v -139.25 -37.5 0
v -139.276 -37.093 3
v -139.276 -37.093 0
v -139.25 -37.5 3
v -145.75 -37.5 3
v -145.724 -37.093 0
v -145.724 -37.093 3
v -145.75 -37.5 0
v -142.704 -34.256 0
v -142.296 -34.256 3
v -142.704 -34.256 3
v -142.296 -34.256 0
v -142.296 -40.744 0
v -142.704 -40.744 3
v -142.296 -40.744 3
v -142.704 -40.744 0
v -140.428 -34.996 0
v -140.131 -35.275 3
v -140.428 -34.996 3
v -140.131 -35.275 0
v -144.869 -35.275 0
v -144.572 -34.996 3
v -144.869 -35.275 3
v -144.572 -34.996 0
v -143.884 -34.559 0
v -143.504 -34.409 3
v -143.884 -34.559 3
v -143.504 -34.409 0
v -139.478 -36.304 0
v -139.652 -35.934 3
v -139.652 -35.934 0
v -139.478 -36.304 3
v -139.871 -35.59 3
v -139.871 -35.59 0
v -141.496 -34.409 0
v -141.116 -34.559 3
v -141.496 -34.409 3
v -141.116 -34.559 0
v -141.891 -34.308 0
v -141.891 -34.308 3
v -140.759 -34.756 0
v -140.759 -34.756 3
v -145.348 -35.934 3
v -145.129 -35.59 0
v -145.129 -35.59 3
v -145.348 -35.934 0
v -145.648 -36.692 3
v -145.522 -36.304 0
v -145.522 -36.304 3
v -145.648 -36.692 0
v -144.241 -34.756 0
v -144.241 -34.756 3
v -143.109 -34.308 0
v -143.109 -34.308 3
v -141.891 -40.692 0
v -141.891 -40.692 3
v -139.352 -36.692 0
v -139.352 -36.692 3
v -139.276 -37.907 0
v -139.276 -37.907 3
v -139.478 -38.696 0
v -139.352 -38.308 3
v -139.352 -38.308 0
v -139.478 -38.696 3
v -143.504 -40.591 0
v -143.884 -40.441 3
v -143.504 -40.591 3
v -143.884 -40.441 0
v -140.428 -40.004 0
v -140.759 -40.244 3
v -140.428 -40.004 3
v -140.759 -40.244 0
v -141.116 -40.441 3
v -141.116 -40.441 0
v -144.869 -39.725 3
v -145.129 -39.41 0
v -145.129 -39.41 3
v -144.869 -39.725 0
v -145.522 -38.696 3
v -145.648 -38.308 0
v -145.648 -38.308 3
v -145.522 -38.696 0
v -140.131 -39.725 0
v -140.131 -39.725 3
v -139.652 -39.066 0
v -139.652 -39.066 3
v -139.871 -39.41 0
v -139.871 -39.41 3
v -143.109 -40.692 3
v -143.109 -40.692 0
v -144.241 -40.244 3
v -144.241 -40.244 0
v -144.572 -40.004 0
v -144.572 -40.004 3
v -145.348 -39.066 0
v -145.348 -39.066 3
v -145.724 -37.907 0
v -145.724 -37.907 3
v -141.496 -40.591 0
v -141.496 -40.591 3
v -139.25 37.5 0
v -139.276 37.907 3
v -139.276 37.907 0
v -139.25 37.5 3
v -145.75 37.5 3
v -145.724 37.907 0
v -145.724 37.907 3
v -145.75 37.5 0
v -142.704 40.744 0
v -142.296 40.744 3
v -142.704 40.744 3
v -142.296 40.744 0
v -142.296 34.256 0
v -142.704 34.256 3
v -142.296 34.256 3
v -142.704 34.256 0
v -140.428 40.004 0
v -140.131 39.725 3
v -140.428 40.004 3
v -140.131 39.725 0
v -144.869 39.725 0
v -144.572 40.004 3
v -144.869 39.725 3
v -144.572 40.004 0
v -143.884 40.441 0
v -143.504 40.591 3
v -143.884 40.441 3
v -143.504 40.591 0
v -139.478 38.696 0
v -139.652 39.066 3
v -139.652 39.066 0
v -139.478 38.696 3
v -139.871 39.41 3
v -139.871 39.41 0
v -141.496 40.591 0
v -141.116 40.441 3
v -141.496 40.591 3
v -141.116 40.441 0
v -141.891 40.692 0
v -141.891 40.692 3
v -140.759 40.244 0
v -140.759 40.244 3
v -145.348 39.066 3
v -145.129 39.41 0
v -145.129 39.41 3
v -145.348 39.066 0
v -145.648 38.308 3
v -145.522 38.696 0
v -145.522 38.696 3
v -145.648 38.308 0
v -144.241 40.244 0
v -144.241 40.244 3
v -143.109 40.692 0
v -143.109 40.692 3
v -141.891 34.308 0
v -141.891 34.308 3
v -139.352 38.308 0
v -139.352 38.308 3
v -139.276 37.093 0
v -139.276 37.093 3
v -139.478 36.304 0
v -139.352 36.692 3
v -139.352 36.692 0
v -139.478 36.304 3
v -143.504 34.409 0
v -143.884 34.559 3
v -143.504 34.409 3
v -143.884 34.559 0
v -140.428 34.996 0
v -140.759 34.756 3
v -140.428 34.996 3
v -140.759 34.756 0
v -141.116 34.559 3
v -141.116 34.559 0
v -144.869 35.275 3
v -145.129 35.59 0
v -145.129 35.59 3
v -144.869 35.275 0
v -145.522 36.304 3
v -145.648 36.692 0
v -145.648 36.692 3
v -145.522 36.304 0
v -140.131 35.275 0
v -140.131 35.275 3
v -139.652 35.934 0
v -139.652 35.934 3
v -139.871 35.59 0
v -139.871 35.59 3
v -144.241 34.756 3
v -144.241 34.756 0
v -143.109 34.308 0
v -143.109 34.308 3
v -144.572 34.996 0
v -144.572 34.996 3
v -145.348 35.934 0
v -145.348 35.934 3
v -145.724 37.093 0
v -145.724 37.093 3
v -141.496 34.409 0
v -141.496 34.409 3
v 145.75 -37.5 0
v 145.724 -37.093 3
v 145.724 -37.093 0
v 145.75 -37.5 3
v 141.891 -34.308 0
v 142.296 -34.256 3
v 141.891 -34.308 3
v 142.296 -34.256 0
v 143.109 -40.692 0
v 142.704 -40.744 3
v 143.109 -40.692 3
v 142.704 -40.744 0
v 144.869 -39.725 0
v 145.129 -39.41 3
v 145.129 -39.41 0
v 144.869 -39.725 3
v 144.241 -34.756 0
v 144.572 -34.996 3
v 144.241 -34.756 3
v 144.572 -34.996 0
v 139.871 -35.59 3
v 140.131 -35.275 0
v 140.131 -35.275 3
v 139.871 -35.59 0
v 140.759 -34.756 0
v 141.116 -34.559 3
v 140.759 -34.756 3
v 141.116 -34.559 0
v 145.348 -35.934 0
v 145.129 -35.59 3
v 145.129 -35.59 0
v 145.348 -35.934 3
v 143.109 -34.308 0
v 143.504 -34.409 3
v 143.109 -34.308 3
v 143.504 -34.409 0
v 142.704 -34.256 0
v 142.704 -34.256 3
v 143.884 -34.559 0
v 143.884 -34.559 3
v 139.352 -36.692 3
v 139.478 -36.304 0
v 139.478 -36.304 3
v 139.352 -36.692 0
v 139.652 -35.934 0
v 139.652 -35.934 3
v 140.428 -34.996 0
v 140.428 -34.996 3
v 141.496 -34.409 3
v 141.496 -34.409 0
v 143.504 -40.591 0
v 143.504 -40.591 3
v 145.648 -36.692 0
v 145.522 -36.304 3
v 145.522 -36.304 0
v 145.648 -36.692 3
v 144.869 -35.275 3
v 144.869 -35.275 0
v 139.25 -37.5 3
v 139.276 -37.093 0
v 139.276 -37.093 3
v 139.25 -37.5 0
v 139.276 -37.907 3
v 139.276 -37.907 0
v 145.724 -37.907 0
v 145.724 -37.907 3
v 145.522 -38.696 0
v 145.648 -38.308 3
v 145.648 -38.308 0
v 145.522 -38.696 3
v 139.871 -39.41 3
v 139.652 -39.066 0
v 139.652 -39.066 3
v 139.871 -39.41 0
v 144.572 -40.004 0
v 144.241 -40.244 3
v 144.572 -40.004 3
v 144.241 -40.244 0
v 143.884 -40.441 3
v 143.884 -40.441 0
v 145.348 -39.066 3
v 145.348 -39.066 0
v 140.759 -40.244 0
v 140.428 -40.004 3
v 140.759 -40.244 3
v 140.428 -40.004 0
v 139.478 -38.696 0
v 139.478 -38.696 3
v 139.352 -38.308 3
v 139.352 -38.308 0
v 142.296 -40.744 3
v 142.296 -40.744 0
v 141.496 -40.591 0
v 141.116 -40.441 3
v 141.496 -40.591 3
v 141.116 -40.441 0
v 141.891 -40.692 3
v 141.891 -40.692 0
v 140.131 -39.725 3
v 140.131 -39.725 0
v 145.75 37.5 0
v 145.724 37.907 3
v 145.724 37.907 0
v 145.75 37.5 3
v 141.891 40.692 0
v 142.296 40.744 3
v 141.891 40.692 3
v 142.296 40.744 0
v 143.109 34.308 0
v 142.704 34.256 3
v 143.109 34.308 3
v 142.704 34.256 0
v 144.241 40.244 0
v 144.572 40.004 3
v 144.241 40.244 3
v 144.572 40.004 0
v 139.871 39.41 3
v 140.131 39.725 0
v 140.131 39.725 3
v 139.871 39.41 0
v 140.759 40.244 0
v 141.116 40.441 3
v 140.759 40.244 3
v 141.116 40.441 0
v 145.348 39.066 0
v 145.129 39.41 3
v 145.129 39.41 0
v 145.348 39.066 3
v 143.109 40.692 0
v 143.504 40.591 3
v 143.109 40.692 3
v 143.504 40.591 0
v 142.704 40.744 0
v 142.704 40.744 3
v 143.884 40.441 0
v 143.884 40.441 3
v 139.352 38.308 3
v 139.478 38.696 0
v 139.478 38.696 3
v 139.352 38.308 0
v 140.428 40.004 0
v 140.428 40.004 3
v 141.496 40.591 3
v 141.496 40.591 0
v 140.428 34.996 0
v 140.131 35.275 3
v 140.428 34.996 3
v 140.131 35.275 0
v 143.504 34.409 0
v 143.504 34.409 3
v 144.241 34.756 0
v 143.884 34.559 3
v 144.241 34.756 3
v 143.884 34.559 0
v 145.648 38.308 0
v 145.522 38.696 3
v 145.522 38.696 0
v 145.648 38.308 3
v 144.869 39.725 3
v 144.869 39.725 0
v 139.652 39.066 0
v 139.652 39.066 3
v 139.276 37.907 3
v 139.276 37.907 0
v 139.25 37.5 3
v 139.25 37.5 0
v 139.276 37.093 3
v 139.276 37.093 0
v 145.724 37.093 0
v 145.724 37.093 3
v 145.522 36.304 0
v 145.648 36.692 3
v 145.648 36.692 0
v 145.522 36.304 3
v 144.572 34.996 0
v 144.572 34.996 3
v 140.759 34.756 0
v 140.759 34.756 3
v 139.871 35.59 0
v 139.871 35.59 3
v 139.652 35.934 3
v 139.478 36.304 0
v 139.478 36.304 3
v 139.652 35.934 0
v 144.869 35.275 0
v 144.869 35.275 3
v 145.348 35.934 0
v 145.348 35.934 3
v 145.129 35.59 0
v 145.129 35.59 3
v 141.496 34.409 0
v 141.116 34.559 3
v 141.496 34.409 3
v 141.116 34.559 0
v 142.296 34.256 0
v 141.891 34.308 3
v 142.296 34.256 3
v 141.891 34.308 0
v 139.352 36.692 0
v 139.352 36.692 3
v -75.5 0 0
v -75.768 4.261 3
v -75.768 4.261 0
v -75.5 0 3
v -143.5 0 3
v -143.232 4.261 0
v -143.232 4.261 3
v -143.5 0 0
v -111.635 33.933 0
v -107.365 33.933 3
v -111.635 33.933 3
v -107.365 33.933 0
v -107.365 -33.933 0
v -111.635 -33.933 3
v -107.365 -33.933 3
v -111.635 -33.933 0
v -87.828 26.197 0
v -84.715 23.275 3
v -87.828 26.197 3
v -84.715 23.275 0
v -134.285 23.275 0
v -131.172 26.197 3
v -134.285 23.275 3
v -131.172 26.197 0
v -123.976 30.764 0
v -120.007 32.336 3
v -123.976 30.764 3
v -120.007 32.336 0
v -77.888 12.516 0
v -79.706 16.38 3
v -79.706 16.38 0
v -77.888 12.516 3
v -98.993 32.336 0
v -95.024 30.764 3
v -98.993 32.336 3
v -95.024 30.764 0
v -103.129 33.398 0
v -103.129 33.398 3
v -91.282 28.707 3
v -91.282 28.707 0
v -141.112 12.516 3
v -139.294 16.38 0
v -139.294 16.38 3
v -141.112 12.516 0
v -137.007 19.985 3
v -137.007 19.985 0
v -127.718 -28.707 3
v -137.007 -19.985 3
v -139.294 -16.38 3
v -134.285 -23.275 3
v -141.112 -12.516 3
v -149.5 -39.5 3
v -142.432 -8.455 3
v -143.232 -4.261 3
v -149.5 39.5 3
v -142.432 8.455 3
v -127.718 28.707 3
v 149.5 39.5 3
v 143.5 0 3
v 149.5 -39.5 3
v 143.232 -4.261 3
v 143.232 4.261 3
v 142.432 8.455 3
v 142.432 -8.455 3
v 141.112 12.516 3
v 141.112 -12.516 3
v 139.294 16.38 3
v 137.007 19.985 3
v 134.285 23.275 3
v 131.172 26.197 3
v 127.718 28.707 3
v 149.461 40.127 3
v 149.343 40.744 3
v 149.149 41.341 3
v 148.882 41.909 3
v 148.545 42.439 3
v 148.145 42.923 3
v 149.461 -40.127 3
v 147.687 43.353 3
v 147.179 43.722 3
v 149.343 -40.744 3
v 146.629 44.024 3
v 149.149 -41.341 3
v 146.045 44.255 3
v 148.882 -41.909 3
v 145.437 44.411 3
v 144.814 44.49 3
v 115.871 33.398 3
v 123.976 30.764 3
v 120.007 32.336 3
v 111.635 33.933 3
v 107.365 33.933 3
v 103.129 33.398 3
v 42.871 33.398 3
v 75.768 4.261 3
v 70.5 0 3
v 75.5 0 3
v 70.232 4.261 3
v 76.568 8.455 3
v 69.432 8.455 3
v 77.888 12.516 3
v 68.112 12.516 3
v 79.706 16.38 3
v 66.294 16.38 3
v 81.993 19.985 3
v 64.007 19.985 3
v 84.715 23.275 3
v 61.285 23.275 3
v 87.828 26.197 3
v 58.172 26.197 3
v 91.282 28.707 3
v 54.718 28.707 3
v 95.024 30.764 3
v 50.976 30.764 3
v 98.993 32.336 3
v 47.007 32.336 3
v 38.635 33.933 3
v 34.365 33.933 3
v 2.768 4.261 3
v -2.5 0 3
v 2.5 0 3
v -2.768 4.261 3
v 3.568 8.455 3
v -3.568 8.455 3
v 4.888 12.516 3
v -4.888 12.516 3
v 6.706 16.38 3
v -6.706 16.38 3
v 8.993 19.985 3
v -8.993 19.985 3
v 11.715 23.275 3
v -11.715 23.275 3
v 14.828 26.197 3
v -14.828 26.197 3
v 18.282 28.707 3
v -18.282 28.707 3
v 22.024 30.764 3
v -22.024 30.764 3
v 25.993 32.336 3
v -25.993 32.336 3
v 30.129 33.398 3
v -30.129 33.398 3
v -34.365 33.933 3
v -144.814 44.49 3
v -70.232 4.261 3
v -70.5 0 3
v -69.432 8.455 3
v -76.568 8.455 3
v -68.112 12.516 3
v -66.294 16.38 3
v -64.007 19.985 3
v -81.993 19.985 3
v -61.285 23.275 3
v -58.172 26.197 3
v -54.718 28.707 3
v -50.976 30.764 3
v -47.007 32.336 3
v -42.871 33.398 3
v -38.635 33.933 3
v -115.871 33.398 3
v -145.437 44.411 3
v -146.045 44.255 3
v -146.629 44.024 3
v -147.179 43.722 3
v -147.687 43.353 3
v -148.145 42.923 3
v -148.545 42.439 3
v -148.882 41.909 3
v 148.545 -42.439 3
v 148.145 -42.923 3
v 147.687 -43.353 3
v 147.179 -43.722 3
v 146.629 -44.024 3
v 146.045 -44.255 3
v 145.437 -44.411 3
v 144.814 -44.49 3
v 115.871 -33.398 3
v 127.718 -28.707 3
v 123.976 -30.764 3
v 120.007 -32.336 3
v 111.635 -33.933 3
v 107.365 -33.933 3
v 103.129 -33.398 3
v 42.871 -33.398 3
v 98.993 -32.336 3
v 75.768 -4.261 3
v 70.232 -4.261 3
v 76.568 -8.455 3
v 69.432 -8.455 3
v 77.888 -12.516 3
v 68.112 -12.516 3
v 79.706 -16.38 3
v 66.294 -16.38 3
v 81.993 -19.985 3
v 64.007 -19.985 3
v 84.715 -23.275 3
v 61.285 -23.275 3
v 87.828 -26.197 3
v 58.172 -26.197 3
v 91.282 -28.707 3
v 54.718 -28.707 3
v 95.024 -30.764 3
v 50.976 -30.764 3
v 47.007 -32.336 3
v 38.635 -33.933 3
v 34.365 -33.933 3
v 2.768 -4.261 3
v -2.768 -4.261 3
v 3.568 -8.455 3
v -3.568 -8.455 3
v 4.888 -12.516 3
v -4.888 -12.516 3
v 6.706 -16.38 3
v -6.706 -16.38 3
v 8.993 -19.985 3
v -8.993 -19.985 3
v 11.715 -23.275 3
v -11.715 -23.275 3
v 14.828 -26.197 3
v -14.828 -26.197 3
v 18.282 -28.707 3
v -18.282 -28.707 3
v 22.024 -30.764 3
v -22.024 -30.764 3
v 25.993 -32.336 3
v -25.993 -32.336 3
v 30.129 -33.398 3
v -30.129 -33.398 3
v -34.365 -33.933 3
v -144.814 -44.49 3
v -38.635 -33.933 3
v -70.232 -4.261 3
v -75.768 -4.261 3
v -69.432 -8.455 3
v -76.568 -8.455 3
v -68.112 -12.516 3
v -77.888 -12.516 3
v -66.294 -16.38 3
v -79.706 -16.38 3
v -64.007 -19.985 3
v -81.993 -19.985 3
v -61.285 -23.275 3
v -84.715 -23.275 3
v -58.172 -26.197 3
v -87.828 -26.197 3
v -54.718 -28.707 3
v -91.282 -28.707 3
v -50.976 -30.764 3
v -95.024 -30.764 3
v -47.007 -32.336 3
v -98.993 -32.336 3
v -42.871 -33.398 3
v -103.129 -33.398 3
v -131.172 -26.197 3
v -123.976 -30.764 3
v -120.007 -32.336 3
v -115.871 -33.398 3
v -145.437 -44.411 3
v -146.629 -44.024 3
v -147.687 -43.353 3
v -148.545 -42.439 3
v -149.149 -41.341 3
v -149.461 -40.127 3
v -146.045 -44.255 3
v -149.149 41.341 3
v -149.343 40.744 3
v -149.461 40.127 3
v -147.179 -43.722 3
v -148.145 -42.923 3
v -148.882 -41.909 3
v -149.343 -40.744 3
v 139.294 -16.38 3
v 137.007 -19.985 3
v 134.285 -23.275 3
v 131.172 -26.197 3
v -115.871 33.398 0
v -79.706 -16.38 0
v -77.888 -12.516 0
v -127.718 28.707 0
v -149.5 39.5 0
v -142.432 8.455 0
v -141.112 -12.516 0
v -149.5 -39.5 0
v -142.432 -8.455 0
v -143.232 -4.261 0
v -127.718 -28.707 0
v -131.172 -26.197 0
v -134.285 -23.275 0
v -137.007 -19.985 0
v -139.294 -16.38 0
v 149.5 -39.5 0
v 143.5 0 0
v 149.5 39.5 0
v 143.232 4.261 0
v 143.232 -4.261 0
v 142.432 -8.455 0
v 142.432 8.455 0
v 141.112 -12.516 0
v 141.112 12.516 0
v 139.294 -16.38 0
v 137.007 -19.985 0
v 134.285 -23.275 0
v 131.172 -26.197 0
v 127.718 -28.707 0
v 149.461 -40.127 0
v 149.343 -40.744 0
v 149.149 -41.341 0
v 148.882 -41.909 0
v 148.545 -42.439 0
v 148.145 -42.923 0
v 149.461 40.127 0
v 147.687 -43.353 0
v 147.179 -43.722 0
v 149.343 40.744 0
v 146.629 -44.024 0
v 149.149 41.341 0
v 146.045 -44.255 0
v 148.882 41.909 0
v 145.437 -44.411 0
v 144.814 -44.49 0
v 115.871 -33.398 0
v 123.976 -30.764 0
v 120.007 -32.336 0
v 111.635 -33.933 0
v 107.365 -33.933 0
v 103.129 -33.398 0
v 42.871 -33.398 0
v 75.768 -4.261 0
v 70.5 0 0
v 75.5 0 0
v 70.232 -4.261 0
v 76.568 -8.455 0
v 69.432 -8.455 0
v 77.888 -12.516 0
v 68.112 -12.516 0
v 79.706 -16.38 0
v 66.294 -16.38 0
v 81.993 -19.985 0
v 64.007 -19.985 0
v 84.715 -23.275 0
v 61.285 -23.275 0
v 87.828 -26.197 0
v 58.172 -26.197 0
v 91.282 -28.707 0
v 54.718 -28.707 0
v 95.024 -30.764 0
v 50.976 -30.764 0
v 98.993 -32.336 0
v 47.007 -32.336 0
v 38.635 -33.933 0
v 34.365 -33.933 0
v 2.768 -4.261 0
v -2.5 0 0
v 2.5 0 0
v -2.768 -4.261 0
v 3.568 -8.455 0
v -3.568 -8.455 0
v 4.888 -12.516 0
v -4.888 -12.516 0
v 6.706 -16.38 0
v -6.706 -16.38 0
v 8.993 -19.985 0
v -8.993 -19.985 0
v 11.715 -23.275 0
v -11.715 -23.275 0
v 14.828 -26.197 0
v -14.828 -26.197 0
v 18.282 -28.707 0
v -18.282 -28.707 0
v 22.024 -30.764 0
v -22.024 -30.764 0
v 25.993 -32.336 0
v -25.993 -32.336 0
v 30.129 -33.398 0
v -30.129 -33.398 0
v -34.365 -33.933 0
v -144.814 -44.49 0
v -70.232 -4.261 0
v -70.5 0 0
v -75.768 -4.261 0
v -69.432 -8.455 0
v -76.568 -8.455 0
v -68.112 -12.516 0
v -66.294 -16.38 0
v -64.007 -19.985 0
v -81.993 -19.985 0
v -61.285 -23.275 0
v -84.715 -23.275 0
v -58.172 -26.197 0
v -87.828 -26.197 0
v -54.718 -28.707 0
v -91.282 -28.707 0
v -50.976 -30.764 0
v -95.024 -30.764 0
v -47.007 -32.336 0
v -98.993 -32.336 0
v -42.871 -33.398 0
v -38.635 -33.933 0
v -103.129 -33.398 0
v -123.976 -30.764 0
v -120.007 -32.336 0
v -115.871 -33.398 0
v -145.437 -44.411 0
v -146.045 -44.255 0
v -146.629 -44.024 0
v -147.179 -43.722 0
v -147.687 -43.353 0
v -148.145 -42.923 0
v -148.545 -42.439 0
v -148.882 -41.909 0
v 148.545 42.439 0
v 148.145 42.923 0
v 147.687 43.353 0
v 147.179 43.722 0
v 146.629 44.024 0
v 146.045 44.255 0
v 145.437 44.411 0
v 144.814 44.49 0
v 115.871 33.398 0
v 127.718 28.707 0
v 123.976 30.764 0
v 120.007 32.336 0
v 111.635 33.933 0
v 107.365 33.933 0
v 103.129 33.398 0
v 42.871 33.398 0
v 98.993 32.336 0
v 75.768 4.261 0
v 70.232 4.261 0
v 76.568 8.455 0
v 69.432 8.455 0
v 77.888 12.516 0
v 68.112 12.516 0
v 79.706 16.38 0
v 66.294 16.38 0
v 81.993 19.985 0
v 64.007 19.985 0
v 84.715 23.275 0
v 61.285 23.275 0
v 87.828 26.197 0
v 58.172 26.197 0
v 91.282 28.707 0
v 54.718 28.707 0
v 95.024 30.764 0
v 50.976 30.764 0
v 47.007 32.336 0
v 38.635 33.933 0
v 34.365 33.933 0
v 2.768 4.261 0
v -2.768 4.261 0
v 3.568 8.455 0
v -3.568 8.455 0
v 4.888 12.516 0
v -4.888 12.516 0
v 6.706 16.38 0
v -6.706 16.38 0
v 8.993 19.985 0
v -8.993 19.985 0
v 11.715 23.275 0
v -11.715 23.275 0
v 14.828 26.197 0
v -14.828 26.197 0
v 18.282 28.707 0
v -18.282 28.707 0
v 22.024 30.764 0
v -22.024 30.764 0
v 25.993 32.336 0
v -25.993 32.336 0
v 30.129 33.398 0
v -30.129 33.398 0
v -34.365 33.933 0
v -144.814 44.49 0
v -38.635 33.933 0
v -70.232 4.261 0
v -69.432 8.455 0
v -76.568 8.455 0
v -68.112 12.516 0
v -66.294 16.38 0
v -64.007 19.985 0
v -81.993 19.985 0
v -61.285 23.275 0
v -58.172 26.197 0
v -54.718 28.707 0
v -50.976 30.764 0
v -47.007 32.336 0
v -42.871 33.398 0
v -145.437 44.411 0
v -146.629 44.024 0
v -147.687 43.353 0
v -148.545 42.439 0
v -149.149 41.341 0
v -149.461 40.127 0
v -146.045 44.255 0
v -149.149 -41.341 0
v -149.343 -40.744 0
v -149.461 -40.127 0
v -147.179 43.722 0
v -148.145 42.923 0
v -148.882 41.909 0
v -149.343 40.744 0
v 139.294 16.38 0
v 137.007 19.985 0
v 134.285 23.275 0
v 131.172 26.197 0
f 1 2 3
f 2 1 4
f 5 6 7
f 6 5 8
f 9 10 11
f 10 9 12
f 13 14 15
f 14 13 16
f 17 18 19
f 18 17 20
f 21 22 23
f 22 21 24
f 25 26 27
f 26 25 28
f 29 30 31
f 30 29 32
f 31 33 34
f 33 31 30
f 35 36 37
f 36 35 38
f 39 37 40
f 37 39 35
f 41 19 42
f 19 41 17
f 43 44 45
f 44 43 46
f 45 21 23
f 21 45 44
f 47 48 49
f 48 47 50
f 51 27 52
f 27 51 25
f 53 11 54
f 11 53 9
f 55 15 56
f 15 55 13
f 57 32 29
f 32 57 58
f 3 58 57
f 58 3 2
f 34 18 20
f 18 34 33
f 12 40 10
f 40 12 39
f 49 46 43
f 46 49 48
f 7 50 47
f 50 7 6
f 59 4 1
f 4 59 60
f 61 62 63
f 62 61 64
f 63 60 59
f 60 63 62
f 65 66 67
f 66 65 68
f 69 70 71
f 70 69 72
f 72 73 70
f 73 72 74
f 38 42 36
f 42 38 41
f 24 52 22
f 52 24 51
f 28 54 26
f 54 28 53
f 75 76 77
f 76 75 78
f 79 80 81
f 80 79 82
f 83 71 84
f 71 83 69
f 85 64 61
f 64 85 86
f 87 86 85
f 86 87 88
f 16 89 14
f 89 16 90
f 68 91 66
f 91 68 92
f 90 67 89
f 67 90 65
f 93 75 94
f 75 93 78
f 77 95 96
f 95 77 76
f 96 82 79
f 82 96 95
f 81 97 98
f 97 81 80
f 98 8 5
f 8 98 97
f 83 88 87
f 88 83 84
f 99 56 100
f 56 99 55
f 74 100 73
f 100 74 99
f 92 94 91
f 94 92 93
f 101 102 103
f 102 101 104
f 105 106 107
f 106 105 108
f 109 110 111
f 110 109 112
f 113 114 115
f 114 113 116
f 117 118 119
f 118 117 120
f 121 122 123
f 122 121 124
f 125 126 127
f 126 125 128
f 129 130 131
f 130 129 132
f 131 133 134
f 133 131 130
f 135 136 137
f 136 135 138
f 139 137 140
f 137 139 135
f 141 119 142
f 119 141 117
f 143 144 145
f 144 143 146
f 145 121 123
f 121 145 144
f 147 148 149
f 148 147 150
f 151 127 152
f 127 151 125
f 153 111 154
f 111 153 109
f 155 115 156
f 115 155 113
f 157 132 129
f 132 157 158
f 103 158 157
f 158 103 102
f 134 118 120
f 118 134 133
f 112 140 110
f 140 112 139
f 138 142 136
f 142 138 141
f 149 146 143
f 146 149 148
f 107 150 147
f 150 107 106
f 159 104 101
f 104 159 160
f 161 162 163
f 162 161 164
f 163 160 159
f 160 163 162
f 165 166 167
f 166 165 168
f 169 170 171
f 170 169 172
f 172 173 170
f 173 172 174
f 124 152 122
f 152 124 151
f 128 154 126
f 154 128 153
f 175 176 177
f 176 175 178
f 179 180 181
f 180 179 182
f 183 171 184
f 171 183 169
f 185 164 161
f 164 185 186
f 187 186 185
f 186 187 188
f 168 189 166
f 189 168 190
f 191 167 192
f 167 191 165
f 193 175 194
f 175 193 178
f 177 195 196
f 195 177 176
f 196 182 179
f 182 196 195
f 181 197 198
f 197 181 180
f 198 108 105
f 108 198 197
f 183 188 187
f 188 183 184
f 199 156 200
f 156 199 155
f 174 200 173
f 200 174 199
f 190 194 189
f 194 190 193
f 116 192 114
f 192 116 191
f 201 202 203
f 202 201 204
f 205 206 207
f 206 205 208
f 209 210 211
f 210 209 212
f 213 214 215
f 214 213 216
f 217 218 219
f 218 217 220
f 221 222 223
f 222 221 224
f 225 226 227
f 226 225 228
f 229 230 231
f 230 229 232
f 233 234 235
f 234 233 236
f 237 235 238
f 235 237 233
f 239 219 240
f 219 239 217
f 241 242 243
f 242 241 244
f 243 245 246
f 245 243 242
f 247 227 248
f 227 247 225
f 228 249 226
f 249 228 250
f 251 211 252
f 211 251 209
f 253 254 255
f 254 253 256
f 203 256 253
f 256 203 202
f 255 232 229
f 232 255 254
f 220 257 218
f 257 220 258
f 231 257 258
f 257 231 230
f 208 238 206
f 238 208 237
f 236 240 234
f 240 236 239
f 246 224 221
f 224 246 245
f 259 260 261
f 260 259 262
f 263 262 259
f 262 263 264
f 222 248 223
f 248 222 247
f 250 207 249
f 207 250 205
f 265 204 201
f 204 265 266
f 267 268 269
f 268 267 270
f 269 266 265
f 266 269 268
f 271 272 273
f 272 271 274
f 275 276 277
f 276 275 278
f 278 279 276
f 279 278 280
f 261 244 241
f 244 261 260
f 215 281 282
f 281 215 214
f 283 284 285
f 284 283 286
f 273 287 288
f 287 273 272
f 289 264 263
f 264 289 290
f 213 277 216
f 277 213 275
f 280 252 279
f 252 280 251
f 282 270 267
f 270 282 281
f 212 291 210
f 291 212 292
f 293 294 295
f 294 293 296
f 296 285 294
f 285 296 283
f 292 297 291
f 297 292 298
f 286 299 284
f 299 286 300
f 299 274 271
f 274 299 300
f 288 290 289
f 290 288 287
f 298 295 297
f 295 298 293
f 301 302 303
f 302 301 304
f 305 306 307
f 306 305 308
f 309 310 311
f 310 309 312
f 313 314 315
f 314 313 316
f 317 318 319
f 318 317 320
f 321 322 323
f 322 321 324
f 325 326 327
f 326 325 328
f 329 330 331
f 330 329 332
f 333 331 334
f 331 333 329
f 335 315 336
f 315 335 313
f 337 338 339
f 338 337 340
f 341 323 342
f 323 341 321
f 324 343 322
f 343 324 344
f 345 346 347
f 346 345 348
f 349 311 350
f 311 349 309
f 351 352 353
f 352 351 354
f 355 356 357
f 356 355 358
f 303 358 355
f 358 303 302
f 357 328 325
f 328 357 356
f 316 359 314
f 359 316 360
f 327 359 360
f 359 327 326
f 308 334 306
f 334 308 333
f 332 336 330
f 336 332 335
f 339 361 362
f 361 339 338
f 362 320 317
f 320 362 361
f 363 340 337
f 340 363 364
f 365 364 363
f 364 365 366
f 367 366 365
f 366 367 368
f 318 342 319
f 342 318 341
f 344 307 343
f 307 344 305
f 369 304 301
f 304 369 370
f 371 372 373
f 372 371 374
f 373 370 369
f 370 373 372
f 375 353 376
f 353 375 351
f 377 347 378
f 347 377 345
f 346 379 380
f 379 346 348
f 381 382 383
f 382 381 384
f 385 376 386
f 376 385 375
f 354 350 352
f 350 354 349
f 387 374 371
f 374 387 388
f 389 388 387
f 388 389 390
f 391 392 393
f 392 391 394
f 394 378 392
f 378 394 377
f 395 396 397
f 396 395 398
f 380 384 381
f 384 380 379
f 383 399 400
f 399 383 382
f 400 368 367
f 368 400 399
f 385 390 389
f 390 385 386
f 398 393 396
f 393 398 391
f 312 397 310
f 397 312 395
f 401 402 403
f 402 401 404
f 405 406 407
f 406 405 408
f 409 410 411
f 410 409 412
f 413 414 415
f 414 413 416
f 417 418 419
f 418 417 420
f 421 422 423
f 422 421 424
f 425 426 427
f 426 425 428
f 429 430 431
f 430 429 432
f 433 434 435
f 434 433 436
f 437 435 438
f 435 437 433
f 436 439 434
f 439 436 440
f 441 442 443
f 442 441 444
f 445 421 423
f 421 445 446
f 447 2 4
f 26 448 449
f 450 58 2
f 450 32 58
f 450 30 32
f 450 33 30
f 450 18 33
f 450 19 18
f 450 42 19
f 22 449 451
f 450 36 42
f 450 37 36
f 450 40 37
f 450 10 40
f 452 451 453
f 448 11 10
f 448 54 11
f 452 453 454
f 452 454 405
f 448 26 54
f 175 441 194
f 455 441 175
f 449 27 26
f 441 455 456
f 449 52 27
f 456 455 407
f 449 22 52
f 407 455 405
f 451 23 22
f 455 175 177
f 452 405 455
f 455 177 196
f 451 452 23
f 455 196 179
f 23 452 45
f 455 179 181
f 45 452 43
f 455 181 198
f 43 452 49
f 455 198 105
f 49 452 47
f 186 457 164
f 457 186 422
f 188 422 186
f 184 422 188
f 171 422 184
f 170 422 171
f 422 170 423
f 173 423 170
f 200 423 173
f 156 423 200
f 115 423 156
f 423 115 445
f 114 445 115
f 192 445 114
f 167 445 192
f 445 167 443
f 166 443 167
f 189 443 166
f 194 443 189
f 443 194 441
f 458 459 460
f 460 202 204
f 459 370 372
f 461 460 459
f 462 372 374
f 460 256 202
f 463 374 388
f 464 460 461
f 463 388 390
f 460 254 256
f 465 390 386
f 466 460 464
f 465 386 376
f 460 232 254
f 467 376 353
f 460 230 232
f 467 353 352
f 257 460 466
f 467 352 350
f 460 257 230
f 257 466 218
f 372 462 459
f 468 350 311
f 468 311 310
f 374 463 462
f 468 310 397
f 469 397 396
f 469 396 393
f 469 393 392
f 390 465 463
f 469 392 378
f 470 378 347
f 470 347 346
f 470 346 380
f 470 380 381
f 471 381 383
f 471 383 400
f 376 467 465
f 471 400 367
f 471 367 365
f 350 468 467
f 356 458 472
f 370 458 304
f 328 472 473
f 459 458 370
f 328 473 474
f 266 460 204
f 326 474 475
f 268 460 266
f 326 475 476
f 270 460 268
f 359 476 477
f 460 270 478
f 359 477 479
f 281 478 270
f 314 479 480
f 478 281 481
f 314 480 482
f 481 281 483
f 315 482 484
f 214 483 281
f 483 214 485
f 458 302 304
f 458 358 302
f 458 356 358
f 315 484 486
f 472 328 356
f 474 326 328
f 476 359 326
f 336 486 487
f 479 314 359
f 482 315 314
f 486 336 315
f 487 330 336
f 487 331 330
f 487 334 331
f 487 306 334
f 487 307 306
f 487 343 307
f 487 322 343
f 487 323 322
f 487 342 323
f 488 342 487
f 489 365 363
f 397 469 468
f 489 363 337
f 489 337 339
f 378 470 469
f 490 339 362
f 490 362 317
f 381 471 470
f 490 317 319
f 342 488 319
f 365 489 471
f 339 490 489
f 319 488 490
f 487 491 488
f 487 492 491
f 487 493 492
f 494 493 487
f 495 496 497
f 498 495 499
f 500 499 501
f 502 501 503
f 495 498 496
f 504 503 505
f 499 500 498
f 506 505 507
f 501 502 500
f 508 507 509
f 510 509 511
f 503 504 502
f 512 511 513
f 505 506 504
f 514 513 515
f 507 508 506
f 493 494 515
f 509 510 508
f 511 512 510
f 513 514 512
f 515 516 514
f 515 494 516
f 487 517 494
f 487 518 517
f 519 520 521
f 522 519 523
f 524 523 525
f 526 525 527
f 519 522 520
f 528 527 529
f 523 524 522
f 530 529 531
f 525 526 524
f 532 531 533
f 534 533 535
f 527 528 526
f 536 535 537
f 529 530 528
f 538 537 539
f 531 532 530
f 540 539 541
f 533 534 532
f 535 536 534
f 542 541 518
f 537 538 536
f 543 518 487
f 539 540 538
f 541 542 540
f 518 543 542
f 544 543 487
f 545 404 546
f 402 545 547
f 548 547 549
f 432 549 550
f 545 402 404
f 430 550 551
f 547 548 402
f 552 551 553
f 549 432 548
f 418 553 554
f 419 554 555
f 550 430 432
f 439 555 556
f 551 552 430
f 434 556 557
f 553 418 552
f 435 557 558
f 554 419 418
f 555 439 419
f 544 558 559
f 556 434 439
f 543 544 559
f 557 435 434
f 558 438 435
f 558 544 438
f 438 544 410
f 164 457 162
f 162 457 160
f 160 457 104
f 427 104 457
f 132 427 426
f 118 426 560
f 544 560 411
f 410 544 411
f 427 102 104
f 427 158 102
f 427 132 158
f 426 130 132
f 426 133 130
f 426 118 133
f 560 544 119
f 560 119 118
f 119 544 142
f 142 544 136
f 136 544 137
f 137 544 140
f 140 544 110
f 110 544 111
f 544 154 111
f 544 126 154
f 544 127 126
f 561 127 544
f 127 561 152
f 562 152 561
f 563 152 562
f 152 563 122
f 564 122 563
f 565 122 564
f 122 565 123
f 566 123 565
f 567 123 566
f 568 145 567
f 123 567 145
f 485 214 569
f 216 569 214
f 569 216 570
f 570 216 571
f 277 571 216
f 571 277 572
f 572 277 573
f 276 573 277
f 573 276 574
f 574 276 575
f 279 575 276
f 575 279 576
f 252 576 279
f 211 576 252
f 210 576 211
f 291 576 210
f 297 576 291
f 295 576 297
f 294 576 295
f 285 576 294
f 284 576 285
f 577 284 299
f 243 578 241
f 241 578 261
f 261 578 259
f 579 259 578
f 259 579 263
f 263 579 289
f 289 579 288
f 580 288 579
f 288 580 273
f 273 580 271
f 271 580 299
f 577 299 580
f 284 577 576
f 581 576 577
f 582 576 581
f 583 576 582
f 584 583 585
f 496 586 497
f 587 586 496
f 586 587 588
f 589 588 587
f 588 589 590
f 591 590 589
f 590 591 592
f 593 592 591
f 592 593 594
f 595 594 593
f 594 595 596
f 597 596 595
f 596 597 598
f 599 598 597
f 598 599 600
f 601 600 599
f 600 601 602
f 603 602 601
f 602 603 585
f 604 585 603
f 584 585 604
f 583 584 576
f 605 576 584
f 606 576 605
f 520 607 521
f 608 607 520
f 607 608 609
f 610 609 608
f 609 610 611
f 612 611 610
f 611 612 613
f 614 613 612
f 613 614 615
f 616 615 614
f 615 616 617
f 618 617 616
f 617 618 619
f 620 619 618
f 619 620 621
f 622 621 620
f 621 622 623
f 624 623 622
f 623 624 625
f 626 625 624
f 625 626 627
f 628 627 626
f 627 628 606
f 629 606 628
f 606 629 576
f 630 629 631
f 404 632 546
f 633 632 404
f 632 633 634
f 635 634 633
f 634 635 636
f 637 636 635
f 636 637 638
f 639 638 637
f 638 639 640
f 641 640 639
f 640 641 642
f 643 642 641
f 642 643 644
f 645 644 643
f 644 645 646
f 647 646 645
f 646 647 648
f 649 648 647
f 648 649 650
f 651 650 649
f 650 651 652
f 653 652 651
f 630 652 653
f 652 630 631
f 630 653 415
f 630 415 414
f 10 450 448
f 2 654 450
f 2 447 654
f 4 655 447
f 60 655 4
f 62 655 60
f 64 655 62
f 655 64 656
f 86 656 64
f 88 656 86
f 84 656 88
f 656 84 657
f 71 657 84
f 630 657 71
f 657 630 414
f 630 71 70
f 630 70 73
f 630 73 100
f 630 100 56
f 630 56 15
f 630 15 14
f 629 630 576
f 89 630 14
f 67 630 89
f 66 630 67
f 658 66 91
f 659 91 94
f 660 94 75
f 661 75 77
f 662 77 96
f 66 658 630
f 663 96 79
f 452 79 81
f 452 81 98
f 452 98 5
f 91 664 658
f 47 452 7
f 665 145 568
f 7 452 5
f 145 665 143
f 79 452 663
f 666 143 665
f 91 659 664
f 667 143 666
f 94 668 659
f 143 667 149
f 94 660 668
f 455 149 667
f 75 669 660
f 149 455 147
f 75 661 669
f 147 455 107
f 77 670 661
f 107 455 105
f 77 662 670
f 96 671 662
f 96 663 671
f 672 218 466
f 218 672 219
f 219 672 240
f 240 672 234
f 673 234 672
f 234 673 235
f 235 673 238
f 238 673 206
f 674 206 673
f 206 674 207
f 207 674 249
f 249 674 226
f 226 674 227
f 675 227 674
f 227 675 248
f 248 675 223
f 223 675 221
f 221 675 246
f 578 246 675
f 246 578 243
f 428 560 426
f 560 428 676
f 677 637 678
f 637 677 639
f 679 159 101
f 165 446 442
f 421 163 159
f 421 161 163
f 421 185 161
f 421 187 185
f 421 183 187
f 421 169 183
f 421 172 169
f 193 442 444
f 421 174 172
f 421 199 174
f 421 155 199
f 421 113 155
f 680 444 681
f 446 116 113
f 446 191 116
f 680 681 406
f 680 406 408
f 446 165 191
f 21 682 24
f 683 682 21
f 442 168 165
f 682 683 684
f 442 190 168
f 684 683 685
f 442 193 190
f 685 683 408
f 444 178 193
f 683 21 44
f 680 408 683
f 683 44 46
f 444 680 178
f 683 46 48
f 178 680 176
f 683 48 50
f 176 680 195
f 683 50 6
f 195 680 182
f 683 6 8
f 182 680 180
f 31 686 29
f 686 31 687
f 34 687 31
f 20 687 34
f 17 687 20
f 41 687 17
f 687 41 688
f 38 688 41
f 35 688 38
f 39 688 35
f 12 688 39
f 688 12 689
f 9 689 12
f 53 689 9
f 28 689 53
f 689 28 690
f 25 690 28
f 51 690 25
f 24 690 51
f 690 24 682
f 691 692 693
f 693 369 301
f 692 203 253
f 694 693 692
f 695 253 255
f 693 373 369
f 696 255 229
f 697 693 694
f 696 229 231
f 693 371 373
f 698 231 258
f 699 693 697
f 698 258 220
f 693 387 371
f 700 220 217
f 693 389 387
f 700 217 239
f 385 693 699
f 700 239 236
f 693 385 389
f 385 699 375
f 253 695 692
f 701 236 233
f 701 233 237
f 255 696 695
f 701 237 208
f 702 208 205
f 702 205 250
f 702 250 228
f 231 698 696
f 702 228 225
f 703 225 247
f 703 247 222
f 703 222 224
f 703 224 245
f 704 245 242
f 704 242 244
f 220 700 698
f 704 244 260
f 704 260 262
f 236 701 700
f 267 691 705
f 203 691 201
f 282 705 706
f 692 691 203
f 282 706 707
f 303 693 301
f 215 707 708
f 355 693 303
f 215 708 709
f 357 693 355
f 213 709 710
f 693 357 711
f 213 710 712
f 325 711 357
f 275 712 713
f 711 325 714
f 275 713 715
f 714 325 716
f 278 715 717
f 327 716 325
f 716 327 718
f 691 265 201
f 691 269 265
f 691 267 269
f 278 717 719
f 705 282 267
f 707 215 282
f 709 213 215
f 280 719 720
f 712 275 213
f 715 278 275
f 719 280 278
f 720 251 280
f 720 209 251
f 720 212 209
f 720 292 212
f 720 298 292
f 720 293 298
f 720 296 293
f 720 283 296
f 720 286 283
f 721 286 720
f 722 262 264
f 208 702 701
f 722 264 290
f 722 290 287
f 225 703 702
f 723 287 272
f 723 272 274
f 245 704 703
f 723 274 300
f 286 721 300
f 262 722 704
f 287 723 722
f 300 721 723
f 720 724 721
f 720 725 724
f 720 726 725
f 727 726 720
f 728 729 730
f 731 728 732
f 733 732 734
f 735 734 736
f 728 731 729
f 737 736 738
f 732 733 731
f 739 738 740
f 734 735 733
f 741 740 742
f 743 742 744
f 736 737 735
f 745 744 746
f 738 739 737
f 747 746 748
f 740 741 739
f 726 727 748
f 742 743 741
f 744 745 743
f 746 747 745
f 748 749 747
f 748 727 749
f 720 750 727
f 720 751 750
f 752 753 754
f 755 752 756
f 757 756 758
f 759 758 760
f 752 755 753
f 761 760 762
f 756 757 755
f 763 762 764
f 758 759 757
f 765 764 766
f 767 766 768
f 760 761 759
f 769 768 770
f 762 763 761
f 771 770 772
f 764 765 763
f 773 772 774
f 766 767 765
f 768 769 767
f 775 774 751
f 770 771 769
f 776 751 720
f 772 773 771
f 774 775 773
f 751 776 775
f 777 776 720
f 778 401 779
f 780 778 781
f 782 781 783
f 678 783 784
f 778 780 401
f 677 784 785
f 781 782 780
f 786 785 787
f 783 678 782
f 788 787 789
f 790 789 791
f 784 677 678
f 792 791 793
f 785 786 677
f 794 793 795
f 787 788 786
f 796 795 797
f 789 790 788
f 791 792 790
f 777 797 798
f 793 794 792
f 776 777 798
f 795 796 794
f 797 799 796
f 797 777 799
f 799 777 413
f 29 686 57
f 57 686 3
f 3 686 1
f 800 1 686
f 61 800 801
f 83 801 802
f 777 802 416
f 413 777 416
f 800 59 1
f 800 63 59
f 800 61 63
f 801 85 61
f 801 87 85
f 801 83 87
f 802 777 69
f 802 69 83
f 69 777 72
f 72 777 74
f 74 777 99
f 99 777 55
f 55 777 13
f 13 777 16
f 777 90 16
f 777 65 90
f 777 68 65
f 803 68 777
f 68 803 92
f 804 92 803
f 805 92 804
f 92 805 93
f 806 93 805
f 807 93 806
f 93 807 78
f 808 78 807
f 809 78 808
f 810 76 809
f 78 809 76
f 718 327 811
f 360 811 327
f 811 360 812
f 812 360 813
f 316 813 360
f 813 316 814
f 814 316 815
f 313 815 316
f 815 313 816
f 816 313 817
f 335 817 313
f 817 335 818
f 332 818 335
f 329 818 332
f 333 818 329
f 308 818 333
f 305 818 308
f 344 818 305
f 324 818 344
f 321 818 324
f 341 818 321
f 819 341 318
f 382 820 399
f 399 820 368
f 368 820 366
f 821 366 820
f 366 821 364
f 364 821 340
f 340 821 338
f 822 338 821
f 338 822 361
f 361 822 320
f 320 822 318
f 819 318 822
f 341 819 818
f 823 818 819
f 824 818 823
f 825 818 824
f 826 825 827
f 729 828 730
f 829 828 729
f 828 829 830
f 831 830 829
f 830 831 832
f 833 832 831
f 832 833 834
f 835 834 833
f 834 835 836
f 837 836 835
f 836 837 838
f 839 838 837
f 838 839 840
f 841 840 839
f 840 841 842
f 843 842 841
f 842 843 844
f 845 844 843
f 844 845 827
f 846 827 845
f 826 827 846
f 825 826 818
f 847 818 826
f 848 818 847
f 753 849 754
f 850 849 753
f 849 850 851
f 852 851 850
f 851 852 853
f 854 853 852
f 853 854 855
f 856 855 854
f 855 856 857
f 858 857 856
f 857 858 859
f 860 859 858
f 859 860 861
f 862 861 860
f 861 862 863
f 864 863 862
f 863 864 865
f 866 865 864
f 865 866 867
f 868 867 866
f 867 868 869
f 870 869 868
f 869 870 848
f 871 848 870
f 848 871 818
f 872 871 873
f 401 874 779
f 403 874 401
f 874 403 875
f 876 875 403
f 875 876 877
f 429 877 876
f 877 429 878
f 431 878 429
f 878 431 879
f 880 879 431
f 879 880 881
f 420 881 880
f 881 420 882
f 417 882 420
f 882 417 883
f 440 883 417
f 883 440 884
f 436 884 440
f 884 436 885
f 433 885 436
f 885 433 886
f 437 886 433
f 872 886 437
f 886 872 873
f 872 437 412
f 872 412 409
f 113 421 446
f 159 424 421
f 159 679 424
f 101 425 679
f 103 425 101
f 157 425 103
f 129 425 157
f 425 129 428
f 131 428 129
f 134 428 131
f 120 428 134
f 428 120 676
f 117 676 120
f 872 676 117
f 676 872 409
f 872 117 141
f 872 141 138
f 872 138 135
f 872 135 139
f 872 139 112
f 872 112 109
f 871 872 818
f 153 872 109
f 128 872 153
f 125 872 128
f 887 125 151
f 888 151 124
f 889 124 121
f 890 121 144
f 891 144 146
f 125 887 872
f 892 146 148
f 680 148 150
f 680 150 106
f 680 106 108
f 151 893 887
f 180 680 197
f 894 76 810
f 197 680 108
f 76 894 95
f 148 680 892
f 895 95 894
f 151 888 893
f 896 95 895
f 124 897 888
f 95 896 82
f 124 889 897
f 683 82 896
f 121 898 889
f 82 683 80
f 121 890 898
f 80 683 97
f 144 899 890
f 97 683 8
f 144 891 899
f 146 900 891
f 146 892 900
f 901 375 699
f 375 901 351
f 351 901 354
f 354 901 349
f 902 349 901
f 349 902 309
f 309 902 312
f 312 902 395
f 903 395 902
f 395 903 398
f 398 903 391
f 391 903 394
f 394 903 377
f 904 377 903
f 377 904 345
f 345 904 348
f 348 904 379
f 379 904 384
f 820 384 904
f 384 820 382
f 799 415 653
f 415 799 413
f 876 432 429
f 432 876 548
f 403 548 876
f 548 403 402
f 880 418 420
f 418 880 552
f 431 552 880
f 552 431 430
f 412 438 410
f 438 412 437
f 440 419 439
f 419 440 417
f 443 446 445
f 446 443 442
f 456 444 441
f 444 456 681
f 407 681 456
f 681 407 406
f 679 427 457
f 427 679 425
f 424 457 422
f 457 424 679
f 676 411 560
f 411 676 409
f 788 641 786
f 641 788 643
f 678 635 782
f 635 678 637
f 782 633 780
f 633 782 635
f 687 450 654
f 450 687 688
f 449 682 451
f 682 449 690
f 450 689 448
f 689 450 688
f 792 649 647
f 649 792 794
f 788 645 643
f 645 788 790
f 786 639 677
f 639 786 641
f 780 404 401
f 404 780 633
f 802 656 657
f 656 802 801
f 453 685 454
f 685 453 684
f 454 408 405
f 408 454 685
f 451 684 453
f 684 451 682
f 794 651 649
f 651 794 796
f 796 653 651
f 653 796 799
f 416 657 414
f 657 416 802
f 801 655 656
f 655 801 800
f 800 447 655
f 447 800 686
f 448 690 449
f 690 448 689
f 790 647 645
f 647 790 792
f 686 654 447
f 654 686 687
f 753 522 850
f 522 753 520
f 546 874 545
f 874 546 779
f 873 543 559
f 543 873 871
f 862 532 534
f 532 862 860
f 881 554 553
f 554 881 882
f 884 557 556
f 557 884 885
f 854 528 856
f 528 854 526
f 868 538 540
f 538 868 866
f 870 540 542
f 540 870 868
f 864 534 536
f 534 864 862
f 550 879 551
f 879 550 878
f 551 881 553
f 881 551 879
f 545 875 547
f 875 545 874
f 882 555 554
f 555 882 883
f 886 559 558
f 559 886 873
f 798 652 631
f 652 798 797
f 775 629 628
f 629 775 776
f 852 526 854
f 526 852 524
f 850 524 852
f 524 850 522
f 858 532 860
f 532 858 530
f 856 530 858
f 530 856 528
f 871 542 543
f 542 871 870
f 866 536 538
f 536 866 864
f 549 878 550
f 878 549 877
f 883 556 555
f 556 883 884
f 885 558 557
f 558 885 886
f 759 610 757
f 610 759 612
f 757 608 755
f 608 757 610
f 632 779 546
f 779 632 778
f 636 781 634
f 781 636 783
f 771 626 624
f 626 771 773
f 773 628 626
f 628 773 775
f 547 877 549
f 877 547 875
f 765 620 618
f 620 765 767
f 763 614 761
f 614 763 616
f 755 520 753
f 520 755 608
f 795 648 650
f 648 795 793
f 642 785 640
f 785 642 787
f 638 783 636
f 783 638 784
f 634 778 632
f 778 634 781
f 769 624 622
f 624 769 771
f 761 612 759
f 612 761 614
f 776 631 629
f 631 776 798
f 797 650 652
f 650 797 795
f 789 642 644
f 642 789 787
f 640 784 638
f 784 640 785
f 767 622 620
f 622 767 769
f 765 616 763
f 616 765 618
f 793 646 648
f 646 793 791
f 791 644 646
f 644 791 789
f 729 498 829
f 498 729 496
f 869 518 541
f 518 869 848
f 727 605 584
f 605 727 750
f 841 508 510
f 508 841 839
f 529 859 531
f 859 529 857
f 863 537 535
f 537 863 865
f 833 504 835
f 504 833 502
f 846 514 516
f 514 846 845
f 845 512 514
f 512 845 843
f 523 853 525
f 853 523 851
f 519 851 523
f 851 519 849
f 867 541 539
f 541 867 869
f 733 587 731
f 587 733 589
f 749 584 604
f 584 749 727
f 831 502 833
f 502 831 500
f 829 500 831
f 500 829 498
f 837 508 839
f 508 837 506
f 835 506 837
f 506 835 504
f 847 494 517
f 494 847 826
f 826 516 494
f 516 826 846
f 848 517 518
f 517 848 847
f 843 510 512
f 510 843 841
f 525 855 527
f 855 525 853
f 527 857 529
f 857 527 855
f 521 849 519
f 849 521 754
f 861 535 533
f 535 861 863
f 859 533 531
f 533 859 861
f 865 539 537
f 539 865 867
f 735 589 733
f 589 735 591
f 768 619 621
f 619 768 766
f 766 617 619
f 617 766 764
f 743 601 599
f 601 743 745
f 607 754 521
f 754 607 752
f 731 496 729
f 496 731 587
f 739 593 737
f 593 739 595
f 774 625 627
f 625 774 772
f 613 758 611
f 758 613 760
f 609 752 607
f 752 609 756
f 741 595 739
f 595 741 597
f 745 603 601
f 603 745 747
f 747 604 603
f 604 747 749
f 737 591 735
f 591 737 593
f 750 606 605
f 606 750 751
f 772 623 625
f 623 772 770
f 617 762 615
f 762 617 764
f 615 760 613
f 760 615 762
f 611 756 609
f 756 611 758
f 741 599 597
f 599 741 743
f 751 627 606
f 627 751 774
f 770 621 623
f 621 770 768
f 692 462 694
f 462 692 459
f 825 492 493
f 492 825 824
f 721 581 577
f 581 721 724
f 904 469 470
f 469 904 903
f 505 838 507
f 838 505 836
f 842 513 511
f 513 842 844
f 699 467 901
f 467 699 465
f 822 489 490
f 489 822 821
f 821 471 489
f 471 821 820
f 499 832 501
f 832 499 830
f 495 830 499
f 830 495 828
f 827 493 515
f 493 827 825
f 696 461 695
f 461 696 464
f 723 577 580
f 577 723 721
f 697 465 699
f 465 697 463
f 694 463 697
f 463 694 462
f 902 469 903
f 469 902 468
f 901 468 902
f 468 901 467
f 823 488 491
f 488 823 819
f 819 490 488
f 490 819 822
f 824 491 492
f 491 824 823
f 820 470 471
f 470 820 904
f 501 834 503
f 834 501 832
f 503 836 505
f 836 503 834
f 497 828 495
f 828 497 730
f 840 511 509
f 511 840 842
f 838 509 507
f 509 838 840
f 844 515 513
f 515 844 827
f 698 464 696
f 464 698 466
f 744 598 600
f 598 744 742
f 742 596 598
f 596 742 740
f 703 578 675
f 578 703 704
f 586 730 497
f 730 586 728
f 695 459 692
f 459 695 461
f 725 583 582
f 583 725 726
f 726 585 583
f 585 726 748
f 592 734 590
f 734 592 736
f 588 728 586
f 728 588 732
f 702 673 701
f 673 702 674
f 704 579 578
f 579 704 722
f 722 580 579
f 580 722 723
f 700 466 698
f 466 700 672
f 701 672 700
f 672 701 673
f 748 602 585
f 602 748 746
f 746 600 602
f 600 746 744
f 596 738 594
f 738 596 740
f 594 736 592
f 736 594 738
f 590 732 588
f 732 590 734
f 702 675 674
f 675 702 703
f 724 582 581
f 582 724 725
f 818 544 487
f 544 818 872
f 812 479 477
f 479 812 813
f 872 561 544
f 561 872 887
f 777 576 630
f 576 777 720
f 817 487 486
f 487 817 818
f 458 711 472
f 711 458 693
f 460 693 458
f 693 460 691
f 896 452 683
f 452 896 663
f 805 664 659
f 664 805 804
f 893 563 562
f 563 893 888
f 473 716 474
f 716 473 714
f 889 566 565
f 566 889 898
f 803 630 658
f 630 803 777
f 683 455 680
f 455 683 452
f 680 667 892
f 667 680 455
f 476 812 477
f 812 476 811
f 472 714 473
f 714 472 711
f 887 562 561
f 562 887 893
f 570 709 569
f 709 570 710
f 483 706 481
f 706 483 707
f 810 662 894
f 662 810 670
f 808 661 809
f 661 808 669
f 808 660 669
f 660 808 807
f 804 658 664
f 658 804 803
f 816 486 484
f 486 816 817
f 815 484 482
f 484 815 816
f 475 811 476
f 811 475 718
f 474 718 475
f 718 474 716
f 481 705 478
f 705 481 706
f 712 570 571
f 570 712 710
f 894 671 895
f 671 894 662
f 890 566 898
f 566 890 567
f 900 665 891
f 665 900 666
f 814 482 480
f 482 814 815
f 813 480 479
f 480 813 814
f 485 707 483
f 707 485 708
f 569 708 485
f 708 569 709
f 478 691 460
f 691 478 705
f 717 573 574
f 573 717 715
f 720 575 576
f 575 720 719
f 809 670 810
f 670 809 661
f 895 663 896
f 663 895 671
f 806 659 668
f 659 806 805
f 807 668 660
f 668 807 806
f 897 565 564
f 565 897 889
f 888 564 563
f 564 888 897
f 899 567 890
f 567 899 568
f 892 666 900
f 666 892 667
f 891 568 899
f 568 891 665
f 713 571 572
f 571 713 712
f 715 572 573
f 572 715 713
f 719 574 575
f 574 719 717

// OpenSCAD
$fn = 50;


difference() {
	union() {
		hull() {
			translate(v = [-144.5000000000, 39.5000000000, 0]) {
				cylinder(h = 3, r = 5);
			}
			translate(v = [144.5000000000, 39.5000000000, 0]) {
				cylinder(h = 3, r = 5);
			}
			translate(v = [-144.5000000000, -39.5000000000, 0]) {
				cylinder(h = 3, r = 5);
			}
			translate(v = [144.5000000000, -39.5000000000, 0]) {
				cylinder(h = 3, r = 5);
			}
		}
	}
	union() {
		#translate(v = [-142.5000000000, -37.5000000000, -100.0000000000]) {
			cylinder(h = 200, r = 3.2500000000);
		}
		#translate(v = [-142.5000000000, 37.5000000000, -100.0000000000]) {
			cylinder(h = 200, r = 3.2500000000);
		}
		#translate(v = [142.5000000000, -37.5000000000, -100.0000000000]) {
			cylinder(h = 200, r = 3.2500000000);
		}
		#translate(v = [142.5000000000, 37.5000000000, -100.0000000000]) {
			cylinder(h = 200, r = 3.2500000000);
		}
		#translate(v = [-109.5000000000, 0, 0]) {
			cylinder(h = 3, r = 34.0000000000);
		}
		#translate(v = [-36.5000000000, 0, 0]) {
			cylinder(h = 3, r = 34.0000000000);
		}
		#translate(v = [36.5000000000, 0, 0]) {
			cylinder(h = 3, r = 34.0000000000);
		}
		#translate(v = [109.5000000000, 0, 0]) {
			cylinder(h = 3, r = 34.0000000000);
		}
	}
}
